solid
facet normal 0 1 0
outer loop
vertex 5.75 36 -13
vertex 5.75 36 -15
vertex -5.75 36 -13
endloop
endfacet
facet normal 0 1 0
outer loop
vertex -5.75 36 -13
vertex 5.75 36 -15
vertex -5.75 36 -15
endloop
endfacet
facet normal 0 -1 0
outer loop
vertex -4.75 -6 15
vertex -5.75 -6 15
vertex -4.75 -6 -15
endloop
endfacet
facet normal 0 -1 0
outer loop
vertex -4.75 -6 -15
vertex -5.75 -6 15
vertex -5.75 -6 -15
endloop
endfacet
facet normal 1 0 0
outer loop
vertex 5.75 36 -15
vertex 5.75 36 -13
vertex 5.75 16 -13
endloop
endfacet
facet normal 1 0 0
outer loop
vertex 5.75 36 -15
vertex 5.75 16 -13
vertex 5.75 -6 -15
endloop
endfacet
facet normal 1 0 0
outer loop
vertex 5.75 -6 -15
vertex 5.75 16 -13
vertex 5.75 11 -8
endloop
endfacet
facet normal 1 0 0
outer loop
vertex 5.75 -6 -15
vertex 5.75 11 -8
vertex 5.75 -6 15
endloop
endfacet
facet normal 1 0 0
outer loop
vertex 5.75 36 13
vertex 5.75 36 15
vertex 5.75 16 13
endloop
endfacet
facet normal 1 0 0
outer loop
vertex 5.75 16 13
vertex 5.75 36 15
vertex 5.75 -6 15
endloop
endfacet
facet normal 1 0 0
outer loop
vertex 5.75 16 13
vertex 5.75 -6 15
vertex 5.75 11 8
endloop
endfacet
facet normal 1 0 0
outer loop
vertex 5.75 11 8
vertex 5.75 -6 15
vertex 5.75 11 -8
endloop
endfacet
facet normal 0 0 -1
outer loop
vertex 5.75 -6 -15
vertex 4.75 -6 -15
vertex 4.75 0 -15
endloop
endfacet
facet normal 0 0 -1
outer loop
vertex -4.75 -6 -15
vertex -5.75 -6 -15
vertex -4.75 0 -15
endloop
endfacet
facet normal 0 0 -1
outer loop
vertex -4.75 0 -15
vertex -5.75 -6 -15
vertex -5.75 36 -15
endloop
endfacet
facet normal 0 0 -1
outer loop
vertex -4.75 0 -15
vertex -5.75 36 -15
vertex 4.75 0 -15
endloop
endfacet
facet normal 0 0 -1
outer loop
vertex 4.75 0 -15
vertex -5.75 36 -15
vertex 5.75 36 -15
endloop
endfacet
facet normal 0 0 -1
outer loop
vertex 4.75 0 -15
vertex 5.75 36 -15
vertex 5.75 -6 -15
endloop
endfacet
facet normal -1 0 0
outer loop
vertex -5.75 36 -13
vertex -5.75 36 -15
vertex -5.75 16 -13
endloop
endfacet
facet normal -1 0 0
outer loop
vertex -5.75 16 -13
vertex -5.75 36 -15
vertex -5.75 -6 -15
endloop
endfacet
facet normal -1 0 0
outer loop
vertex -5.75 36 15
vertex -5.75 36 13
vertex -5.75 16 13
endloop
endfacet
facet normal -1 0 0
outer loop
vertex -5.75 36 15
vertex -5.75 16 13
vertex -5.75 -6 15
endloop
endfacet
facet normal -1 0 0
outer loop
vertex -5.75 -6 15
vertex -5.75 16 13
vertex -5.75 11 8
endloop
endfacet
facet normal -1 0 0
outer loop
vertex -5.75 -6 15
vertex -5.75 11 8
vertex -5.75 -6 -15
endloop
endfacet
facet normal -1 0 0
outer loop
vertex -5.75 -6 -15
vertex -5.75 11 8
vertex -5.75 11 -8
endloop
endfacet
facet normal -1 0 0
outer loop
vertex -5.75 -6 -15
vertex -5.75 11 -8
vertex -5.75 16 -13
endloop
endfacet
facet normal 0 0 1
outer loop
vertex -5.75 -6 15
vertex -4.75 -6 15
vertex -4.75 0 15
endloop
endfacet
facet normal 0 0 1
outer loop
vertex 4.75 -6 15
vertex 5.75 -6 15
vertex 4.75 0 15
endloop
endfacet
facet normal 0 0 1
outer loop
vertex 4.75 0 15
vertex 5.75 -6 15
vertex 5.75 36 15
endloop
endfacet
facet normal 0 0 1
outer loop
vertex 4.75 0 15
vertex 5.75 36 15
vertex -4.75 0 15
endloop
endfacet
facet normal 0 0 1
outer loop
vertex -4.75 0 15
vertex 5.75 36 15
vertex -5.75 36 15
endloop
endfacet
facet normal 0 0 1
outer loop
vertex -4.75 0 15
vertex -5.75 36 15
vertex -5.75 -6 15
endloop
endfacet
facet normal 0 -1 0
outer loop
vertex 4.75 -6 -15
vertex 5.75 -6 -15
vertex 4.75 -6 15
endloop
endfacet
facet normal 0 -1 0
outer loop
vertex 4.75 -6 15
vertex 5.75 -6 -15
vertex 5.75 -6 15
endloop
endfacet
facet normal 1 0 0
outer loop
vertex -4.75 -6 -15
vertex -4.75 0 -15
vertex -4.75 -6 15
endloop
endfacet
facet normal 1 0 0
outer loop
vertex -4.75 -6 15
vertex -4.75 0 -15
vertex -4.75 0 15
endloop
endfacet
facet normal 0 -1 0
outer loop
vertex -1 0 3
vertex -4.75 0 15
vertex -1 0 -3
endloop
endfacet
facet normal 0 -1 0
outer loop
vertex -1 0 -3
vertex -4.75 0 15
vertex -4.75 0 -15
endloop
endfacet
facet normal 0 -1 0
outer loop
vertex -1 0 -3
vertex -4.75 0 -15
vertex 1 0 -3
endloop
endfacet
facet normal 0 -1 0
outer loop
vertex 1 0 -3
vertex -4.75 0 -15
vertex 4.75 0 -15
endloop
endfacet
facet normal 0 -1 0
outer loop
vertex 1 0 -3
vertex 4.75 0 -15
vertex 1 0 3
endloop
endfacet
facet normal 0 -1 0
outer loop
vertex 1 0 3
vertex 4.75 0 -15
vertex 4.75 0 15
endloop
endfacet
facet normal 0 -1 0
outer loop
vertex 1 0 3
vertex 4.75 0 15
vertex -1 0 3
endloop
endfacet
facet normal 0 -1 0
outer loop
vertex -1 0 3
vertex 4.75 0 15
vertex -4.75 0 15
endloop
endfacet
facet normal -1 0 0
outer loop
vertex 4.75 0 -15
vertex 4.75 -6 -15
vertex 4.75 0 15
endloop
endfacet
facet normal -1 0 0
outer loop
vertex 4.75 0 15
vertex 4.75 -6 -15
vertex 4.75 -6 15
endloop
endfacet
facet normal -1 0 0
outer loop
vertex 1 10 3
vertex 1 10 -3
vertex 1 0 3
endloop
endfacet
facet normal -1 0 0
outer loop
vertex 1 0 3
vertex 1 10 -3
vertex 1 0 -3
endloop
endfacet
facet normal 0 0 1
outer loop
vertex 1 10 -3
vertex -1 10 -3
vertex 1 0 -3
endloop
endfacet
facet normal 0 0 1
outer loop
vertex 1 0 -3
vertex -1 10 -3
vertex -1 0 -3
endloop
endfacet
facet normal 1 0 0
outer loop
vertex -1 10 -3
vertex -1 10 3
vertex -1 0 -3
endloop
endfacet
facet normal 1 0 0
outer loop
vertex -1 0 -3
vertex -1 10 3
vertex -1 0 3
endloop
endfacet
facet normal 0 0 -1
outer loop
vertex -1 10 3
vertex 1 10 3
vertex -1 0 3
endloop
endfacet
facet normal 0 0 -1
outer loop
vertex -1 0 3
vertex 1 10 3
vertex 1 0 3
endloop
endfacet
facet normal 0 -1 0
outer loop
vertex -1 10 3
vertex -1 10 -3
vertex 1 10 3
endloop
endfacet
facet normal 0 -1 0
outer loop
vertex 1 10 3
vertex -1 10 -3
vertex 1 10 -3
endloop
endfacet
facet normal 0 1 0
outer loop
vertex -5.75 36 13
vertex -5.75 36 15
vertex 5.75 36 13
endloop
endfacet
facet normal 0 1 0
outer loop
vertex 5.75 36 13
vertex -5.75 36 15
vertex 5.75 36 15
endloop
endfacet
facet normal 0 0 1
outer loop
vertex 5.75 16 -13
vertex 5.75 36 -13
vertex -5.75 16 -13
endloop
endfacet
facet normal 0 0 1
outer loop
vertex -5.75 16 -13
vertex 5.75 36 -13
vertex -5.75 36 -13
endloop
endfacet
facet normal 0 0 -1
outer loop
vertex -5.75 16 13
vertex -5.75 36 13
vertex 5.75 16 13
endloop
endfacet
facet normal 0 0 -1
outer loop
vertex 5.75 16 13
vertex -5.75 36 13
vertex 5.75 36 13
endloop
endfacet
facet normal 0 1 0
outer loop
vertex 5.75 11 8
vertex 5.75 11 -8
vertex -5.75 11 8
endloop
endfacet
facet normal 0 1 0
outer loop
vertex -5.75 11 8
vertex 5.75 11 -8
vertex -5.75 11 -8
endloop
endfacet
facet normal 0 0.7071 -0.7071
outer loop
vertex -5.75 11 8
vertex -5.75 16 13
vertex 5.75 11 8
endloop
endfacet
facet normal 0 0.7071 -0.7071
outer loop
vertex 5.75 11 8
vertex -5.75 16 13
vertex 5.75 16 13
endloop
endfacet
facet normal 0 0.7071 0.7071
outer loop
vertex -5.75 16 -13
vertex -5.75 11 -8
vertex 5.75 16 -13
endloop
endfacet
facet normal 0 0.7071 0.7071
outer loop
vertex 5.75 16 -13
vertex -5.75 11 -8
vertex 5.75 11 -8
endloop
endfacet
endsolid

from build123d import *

# Parameters (mm, degrees)
SKETCH1_W           = 11.5
SKETCH1_H           = 30
BOSS_EXTRUDE1_DEPTH = 11
SKETCH3_W           = 11.5
SKETCH3_H           = 30
BOSS_EXTRUDE3_DEPTH = 6
SKETCH4_W           = 9.5
SKETCH4_H           = 6
CUT_EXTRUDE1_DEPTH  = 33.466328711
SKETCH7_W           = 2
SKETCH7_H           = 6
CUT_EXTRUDE2_DEPTH  = 10
SKETCH8_W           = 11.5
SKETCH8_H           = 30
BOSS_EXTRUDE4_DEPTH = 25
SKETCH9_W           = 26
SKETCH9_H           = 25
CUT_EXTRUDE3_DEPTH  = 41.660177078
CHAMFER1_SIZE       = 5


with BuildPart() as part:
    # Sketch1 → Boss-Extrude1 (new body)
    with BuildSketch(Plane(origin=(0, 0, 0), x_dir=(1, 0, 0), z_dir=(0, 1, 0))):
        Rectangle(SKETCH1_W, SKETCH1_H)
    extrude(amount=BOSS_EXTRUDE1_DEPTH)

    # Sketch3 → Boss-Extrude3 (add)
    with BuildSketch(Plane.XZ):
        Rectangle(SKETCH3_W, SKETCH3_H)
    extrude(amount=BOSS_EXTRUDE3_DEPTH)

    # Sketch4 → Cut-Extrude1 (cut, through all)
    with BuildSketch(Plane.XY.offset(15)):
        with Locations((0, -3)):
            Rectangle(SKETCH4_W, SKETCH4_H)
    extrude(amount=-CUT_EXTRUDE1_DEPTH, mode=Mode.SUBTRACT)

    # Sketch7 → Cut-Extrude2 (cut)
    with BuildSketch(Plane.XZ):
        Rectangle(SKETCH7_W, SKETCH7_H)
    extrude(amount=-CUT_EXTRUDE2_DEPTH, mode=Mode.SUBTRACT)

    # Sketch8 → Boss-Extrude4 (add)
    with BuildSketch(Plane(origin=(0, 11, 0), x_dir=(1, 0, 0), z_dir=(0, 1, 0))):
        Rectangle(SKETCH8_W, SKETCH8_H)
    extrude(amount=BOSS_EXTRUDE4_DEPTH)

    # Sketch9 → Cut-Extrude3 (cut, through all)
    with BuildSketch(Plane.ZY.offset(5.75)):
        with Locations((0, 23.5)):
            Rectangle(SKETCH9_W, SKETCH9_H)
    extrude(amount=-CUT_EXTRUDE3_DEPTH, mode=Mode.SUBTRACT)

    # Chamfer1
    chamfer1_edges = [part.edges().sort_by_distance(p)[0] for p in [
        (0, 11, -13),
        (0, 11, 13),
    ]]
    chamfer(chamfer1_edges, length=CHAMFER1_SIZE)


solid = part.part
